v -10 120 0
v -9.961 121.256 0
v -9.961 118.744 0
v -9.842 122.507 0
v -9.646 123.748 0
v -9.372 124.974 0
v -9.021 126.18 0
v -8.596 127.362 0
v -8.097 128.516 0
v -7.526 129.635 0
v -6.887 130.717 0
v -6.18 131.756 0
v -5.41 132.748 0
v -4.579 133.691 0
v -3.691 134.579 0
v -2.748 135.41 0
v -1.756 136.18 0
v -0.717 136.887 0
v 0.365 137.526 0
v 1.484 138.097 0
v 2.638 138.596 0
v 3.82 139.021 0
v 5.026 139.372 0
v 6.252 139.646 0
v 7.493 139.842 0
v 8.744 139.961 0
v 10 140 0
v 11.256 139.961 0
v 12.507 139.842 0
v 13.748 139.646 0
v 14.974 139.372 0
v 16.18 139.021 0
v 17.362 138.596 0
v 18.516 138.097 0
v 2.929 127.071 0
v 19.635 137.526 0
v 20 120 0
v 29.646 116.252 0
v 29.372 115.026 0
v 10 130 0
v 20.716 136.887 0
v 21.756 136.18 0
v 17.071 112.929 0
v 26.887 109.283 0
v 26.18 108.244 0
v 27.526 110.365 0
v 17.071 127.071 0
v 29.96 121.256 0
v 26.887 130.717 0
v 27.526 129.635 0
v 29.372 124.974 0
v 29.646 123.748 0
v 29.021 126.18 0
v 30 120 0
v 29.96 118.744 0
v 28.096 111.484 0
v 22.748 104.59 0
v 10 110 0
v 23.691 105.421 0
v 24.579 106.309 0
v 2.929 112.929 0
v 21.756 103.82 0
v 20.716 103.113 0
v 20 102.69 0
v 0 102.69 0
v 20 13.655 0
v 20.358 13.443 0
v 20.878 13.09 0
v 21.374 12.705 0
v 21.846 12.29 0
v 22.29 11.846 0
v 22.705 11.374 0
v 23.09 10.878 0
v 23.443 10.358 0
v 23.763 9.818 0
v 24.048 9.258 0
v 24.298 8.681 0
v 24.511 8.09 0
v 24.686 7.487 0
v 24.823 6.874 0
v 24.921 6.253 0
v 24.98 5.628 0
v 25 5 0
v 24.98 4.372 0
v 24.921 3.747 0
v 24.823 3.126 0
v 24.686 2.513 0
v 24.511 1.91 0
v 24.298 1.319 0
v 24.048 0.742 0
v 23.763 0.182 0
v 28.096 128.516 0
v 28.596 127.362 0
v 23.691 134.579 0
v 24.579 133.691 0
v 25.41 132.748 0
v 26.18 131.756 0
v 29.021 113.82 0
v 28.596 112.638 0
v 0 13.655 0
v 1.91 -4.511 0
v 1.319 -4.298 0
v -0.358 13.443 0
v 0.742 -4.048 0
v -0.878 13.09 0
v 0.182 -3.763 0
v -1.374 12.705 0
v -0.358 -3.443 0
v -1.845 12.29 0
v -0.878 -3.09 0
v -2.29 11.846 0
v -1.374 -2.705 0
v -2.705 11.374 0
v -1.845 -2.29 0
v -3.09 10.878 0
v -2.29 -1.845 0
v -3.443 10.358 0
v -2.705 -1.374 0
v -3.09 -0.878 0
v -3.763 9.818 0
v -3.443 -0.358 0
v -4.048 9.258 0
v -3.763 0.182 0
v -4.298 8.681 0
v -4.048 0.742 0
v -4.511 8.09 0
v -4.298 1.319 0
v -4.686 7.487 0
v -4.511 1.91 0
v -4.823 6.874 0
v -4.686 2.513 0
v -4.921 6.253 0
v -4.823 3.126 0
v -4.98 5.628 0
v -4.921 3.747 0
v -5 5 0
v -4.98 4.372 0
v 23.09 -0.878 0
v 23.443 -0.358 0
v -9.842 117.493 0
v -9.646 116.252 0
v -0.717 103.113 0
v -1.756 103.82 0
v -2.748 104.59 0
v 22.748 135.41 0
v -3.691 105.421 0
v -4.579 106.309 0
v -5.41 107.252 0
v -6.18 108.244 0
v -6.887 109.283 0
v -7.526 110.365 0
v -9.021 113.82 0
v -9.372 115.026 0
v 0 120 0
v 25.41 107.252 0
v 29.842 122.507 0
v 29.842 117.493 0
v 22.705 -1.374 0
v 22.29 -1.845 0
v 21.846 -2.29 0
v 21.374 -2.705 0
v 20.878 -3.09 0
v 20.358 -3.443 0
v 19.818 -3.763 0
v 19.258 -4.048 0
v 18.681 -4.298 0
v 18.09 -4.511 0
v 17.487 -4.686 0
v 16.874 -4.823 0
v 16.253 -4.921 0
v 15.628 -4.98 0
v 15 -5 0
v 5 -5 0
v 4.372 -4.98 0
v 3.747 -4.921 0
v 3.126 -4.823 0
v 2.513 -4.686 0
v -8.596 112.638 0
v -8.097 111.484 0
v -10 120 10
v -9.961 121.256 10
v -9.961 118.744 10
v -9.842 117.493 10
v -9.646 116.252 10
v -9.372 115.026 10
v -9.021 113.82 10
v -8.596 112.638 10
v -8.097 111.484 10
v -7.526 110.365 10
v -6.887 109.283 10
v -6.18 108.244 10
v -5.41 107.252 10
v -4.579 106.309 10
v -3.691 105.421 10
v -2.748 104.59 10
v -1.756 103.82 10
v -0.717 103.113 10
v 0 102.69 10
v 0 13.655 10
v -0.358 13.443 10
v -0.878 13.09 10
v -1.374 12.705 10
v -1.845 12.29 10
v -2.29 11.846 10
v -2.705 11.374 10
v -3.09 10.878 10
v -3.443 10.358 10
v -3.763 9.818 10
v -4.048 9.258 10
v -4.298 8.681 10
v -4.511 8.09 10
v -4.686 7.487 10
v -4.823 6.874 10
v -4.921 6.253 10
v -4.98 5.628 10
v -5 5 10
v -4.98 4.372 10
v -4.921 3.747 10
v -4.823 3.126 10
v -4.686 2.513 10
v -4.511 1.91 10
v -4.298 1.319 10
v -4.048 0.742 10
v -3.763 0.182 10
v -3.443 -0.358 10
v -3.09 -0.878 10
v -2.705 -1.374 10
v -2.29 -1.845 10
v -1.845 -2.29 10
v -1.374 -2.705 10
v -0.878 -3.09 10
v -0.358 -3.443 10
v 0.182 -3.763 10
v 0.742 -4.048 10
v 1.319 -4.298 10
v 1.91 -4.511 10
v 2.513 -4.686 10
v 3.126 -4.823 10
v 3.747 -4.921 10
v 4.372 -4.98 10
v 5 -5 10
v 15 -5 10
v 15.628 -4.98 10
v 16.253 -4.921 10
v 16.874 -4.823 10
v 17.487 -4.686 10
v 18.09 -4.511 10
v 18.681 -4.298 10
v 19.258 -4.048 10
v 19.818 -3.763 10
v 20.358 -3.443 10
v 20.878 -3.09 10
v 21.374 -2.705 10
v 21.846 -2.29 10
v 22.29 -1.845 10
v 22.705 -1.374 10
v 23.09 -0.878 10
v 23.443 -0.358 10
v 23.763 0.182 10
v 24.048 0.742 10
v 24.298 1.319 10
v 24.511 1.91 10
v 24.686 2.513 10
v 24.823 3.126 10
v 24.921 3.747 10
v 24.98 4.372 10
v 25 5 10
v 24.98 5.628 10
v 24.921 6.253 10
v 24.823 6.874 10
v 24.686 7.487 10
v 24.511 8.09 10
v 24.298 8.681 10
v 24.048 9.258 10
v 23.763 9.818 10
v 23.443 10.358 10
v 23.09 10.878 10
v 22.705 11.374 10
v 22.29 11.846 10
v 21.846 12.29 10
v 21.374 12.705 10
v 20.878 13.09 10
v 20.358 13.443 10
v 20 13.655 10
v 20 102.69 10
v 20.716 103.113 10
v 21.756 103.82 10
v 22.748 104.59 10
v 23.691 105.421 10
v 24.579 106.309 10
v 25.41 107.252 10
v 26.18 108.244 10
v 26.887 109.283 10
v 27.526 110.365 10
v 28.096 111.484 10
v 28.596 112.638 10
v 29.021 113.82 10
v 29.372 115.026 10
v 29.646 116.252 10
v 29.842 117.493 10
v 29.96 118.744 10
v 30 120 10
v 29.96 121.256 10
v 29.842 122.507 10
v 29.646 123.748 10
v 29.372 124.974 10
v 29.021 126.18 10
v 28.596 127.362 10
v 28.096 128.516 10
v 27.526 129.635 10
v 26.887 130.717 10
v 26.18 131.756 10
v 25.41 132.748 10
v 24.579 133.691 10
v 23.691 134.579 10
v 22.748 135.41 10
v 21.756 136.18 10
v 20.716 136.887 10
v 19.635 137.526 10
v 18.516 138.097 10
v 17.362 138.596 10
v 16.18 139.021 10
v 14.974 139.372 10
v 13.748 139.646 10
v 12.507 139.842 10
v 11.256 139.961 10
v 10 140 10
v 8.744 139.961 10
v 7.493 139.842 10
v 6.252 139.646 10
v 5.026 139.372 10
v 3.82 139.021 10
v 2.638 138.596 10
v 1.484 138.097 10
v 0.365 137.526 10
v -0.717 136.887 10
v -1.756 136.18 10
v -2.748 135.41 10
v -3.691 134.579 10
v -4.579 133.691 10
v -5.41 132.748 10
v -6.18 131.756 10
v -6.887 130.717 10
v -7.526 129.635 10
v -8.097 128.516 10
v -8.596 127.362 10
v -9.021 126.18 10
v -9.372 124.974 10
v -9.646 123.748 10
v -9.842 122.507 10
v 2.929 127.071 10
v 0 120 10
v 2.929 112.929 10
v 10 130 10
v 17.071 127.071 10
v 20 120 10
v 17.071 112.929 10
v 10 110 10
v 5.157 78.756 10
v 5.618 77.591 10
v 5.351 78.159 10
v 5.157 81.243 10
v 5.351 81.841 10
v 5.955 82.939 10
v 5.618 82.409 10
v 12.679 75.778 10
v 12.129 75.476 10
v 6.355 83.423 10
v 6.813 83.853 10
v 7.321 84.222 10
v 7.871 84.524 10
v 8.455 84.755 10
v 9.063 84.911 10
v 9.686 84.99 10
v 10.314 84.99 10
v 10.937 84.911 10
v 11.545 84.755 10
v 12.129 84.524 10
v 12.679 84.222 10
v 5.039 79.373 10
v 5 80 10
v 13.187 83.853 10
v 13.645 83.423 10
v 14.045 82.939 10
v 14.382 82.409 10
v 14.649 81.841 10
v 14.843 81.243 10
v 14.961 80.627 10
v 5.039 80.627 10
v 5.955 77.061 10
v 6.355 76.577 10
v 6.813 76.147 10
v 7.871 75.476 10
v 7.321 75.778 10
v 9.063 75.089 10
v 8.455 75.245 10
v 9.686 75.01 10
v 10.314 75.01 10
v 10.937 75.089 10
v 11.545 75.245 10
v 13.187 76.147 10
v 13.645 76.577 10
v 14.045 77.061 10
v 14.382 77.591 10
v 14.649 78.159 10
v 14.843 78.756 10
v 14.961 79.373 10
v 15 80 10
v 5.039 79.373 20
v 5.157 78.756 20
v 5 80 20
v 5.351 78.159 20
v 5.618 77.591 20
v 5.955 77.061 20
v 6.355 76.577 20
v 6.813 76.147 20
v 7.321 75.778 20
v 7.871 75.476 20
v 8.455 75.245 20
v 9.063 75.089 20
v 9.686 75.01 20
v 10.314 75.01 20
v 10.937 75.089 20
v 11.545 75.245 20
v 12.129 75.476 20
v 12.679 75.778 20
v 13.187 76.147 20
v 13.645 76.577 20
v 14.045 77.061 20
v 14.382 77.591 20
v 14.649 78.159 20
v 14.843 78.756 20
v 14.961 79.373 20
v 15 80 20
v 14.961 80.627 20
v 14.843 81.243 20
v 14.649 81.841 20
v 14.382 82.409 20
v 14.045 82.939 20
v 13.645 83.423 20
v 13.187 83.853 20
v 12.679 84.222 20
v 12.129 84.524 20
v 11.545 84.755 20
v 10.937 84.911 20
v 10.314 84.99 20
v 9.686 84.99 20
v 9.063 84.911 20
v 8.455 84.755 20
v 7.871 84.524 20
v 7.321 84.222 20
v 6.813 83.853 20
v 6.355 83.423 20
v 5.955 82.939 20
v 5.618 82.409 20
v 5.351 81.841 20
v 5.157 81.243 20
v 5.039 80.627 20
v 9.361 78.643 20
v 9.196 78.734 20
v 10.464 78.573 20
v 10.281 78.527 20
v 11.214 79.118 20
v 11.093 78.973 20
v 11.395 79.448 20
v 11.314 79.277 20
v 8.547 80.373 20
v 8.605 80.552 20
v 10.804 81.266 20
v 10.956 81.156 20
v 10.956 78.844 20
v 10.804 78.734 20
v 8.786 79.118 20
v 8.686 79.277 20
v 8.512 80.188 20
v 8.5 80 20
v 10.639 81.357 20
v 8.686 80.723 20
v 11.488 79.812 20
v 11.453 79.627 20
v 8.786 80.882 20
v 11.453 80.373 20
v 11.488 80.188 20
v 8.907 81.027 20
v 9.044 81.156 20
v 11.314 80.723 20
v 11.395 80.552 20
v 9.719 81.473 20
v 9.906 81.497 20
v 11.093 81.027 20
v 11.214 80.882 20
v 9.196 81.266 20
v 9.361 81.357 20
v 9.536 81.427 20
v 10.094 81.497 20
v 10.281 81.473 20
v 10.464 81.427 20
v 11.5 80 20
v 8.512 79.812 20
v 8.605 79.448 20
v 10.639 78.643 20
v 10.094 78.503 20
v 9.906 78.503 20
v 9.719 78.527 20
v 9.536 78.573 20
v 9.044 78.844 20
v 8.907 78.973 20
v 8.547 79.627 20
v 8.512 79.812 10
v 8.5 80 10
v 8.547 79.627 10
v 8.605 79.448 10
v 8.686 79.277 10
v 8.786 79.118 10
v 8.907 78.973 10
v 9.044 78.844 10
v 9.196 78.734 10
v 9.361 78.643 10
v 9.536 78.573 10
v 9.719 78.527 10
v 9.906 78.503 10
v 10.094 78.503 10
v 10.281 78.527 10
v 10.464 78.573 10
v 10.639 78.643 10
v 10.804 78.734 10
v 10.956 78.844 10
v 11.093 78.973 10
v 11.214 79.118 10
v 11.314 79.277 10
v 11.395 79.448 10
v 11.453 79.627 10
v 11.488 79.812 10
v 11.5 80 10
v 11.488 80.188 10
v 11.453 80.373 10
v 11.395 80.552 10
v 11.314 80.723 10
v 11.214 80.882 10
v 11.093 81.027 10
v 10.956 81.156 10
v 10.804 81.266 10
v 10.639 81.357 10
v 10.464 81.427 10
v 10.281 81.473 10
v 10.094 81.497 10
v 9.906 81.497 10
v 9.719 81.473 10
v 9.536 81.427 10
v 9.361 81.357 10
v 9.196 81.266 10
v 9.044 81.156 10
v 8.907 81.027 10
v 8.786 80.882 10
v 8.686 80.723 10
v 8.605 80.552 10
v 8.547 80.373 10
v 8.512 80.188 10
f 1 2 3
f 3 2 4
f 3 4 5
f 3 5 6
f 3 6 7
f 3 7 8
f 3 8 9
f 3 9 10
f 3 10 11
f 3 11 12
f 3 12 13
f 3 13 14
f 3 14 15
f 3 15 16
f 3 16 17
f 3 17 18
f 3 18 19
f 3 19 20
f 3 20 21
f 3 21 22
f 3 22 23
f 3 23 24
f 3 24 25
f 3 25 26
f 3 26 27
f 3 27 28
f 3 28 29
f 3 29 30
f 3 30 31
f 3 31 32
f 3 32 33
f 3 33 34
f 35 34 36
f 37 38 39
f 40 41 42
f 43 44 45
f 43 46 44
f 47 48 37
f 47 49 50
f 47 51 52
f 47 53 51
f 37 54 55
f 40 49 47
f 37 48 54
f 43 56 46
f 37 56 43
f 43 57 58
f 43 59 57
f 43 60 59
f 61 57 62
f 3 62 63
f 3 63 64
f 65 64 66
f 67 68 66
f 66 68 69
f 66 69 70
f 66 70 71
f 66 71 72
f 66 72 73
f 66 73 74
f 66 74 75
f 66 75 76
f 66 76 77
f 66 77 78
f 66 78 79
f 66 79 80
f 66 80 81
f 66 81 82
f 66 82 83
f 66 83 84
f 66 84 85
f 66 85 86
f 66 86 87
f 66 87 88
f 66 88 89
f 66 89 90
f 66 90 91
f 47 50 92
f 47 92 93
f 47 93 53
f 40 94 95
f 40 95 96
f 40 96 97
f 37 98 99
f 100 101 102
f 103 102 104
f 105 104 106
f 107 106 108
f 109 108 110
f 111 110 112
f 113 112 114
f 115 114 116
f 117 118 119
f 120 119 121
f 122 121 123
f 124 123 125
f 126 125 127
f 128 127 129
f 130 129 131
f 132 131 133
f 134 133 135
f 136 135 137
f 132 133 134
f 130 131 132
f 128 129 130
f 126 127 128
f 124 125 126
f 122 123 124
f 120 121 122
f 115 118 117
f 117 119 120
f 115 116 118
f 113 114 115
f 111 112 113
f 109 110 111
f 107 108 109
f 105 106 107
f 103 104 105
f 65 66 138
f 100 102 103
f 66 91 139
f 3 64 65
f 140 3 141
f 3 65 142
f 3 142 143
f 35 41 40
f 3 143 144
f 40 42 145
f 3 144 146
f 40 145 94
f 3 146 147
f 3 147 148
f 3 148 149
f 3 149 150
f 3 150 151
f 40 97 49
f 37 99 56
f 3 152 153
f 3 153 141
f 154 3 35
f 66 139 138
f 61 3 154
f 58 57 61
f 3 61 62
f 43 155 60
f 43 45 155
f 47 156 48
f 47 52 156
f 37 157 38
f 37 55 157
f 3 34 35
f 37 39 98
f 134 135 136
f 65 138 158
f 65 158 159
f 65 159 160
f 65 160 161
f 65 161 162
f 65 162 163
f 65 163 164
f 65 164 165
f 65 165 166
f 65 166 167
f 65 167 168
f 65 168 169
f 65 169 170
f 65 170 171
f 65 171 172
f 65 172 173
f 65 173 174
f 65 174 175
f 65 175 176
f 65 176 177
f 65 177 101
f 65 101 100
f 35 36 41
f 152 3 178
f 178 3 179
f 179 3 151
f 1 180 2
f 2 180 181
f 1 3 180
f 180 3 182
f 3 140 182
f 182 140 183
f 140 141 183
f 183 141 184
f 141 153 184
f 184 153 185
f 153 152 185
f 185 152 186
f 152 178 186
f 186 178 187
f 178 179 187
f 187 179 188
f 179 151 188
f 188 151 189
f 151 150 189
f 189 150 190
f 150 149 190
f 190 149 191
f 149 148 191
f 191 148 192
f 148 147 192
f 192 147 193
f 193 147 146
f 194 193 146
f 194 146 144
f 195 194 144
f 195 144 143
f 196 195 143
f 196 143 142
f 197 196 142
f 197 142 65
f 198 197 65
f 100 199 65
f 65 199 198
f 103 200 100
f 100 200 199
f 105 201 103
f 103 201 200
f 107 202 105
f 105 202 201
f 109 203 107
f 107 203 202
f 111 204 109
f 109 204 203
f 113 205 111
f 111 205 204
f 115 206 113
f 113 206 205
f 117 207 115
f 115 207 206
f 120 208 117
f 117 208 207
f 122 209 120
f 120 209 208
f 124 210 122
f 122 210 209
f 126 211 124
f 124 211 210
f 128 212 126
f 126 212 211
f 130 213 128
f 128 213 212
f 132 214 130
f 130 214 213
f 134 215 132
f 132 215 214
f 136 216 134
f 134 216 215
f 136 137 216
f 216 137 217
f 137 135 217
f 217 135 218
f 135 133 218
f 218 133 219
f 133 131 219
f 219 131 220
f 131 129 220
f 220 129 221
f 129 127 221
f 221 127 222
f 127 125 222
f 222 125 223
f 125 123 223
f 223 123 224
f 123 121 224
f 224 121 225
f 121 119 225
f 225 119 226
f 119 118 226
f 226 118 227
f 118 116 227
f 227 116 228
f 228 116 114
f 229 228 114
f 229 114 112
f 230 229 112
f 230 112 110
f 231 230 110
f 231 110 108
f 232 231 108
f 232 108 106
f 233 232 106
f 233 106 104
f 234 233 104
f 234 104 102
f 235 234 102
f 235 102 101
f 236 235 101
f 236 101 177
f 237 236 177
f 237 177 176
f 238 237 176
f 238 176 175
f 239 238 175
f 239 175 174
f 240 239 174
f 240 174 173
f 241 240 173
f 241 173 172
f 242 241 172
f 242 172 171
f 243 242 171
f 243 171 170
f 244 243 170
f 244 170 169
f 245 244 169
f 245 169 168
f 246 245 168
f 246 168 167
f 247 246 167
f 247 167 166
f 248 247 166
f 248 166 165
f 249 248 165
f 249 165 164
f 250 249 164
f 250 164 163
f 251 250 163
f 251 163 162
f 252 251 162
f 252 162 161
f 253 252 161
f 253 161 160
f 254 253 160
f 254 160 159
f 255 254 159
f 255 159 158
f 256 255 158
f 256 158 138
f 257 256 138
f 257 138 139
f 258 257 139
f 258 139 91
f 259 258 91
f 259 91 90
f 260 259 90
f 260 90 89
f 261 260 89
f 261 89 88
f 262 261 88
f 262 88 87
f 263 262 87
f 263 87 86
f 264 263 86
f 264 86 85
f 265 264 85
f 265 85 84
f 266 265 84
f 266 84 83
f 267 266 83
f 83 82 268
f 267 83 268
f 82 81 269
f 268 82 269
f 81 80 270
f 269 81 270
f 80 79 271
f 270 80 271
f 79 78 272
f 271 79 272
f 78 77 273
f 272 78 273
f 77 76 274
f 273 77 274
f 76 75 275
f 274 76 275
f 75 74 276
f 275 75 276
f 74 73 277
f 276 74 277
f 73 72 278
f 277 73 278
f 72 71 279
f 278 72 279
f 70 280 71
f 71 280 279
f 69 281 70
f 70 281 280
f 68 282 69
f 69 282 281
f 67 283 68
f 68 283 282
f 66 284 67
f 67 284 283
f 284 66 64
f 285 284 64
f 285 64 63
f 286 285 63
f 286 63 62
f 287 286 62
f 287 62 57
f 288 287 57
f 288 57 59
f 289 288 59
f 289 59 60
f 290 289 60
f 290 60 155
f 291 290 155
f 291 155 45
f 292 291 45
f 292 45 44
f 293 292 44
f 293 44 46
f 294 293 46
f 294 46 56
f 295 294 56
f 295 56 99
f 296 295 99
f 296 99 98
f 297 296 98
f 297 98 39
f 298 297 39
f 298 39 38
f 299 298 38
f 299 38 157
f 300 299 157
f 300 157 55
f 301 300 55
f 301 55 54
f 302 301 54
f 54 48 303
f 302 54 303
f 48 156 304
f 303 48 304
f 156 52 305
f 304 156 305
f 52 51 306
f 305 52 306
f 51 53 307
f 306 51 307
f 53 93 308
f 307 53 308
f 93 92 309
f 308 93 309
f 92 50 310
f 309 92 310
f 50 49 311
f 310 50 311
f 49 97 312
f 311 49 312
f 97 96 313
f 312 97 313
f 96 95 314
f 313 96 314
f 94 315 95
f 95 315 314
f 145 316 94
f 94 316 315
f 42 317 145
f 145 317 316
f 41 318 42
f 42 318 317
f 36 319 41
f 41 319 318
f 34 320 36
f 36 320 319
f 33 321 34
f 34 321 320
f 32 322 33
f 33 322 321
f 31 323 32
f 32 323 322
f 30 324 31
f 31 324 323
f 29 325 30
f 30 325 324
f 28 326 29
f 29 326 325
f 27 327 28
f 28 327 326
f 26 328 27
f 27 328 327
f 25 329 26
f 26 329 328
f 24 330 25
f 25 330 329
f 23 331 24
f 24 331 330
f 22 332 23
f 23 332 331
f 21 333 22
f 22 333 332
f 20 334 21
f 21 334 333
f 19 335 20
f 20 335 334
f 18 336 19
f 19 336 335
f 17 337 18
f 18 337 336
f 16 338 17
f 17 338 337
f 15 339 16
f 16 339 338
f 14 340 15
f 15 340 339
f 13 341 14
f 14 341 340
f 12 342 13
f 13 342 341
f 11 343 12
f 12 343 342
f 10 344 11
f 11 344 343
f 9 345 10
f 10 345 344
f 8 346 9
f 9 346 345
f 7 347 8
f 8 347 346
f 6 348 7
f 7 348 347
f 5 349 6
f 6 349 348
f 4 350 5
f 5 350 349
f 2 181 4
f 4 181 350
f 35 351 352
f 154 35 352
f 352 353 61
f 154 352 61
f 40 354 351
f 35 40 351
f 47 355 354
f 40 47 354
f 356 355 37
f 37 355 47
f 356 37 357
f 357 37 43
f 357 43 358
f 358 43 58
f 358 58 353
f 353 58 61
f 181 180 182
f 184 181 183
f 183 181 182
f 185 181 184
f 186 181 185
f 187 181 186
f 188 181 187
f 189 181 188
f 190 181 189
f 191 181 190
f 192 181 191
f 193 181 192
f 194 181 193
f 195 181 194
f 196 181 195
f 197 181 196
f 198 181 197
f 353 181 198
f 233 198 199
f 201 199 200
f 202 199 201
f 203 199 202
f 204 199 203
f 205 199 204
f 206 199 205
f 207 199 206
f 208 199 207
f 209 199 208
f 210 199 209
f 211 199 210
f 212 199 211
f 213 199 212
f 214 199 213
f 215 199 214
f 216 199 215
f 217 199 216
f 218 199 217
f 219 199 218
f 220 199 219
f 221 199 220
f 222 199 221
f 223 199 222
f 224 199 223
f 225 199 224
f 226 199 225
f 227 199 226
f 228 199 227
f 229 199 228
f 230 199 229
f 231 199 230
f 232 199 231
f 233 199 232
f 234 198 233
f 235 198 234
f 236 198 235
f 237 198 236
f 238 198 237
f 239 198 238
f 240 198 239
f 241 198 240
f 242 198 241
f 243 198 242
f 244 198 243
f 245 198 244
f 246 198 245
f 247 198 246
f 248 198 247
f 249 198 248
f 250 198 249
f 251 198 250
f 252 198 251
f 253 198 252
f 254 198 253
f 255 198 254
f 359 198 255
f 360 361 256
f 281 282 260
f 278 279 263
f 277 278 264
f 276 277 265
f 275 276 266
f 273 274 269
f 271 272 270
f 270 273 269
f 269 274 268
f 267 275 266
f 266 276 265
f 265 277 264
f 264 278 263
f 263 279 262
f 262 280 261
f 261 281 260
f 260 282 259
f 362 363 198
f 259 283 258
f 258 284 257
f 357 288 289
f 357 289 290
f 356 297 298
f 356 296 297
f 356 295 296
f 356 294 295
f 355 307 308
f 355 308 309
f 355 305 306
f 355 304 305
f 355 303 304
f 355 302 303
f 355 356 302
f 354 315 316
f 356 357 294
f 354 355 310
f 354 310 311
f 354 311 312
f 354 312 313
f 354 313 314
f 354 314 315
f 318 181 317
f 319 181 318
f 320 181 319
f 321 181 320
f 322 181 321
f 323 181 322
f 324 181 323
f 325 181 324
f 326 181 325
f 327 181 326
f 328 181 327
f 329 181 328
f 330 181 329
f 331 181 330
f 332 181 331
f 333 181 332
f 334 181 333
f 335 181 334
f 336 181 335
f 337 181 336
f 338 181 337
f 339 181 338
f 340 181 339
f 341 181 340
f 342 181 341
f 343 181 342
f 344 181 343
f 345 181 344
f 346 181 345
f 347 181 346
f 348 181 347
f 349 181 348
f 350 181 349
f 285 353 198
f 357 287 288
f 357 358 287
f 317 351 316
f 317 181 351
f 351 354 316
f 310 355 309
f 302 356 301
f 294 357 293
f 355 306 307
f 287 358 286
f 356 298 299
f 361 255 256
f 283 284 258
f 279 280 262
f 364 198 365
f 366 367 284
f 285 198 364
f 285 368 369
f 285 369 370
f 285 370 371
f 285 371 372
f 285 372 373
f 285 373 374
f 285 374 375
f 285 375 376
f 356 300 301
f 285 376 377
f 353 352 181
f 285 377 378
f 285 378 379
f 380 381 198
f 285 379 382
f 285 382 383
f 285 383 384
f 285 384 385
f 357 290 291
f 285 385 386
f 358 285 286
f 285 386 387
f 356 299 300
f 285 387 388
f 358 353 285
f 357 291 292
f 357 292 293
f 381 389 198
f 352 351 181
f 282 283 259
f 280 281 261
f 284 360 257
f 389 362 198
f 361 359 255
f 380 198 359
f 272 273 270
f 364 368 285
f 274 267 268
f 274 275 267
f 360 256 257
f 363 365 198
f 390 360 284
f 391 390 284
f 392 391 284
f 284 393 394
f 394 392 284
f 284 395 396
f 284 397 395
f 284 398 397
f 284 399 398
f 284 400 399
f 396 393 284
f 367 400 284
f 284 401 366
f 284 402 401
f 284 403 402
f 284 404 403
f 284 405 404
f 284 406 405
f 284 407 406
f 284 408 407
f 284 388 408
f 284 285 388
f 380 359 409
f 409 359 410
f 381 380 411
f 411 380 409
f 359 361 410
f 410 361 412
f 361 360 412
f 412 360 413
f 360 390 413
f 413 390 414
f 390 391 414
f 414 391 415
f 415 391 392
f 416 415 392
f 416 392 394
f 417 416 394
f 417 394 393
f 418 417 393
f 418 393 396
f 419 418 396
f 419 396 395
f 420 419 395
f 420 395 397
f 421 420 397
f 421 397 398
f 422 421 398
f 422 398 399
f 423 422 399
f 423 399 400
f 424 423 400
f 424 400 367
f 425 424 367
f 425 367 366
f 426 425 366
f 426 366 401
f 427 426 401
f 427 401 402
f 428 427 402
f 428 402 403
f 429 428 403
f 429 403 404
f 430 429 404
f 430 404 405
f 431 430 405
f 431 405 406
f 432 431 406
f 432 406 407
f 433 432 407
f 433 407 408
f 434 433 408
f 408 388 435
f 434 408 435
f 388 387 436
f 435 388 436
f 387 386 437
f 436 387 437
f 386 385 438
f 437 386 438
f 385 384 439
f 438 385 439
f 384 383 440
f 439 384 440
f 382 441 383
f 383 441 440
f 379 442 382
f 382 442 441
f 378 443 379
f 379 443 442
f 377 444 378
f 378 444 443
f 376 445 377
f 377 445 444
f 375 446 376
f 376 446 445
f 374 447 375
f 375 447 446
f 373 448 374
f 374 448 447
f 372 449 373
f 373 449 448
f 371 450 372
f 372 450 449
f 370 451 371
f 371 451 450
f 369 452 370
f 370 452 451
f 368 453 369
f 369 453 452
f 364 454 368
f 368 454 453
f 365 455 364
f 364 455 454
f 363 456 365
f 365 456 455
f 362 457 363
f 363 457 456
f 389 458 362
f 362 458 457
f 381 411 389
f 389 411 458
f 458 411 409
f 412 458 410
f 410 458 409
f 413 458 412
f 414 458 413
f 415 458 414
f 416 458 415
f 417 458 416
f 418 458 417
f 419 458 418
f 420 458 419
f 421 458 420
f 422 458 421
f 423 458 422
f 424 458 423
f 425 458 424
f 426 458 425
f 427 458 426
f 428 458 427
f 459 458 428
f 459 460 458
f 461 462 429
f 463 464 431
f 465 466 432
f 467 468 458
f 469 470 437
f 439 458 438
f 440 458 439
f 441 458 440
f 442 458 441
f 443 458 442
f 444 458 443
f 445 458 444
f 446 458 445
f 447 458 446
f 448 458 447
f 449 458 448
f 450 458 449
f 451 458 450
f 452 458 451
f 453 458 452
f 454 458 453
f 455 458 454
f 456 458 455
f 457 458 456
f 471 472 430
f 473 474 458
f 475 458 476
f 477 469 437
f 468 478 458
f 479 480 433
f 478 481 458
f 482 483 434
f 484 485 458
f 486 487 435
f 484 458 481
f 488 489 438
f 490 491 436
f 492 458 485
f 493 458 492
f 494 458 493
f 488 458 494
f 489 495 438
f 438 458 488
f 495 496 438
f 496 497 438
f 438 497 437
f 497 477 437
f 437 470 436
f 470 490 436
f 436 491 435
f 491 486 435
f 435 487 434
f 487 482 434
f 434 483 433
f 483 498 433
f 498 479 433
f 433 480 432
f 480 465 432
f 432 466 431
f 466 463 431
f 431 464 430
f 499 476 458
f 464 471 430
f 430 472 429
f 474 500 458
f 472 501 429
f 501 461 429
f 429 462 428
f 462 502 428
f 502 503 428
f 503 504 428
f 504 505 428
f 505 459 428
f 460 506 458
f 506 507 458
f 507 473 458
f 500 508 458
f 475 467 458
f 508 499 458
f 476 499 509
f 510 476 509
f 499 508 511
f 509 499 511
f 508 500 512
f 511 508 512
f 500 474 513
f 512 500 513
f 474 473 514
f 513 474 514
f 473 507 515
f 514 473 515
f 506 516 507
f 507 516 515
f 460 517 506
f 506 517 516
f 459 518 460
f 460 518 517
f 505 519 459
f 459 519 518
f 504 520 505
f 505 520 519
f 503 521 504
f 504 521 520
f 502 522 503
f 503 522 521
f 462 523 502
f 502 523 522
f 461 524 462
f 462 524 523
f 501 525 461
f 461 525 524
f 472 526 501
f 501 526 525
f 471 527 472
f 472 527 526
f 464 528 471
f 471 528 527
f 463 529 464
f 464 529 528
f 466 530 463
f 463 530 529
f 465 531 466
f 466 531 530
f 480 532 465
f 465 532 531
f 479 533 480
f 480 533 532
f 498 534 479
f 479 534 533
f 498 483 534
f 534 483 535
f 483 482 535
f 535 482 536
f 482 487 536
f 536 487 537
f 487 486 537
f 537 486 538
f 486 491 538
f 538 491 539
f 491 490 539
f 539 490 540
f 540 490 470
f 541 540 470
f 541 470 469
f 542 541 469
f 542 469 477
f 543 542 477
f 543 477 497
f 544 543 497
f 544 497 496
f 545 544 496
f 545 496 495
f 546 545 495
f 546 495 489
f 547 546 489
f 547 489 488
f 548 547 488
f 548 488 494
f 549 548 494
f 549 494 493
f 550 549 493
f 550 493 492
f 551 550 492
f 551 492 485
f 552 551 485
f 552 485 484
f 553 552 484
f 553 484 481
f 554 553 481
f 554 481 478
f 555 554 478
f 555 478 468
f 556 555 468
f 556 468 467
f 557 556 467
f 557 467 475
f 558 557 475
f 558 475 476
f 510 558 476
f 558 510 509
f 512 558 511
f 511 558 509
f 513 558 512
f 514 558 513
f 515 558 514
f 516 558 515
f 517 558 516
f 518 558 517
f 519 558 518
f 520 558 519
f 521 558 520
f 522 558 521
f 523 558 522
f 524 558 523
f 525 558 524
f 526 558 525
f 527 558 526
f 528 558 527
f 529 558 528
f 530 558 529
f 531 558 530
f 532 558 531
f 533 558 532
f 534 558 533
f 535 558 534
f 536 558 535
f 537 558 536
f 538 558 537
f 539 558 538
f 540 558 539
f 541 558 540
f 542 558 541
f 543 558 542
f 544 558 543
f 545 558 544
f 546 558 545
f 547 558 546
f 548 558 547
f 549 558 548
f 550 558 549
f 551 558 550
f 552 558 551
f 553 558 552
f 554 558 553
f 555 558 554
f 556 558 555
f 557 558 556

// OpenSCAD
scale(10) {
union() {
	difference() {
		cube([2,11,1]);
		/*translate([0,2,0]) {
			translate([.75,0,0])
				cylinder(h=1, r=.5, $fn=3);
			translate([1.25,.75,0])
				rotate(a=180)
					cylinder(h=1, r=.5, $fn=3);
		}
		translate([0,3.5,0]) {
			translate([.75,0,0])
				cylinder(h=1, r=.5, $fn=3);
			translate([1.25,.75,0])
				rotate(a=180)
					cylinder(h=1, r=.5, $fn=3);
		}
		translate([0,5,0]) {
			translate([.75,0,0])
				cylinder(h=1, r=.5, $fn=3);
			translate([1.25,.75,0])
				rotate(a=180)
					cylinder(h=1, r=.5, $fn=3);
		}
		translate([.75,6.5,0])
			cylinder(h=1, r=.5, $fn=3);*/
	}
	hull() {
		translate([.5,.5,0])
			cylinder(r=1, $fn=100);
		translate([1.5,.5,0])
			cylinder(r=1, $fn=100);
	}
	difference() {
	translate([1,8,0])
		cylinder(h=2, r=.5, $fn=50);
	translate([1,8,0])
		cylinder(h=2, r=.15, $fn=50);
	}
}
translate([1,12,0]) {
	difference() {
		cylinder(r=2, $fn=100);
		cylinder(r=1, $fn=8);
	}
}
}
